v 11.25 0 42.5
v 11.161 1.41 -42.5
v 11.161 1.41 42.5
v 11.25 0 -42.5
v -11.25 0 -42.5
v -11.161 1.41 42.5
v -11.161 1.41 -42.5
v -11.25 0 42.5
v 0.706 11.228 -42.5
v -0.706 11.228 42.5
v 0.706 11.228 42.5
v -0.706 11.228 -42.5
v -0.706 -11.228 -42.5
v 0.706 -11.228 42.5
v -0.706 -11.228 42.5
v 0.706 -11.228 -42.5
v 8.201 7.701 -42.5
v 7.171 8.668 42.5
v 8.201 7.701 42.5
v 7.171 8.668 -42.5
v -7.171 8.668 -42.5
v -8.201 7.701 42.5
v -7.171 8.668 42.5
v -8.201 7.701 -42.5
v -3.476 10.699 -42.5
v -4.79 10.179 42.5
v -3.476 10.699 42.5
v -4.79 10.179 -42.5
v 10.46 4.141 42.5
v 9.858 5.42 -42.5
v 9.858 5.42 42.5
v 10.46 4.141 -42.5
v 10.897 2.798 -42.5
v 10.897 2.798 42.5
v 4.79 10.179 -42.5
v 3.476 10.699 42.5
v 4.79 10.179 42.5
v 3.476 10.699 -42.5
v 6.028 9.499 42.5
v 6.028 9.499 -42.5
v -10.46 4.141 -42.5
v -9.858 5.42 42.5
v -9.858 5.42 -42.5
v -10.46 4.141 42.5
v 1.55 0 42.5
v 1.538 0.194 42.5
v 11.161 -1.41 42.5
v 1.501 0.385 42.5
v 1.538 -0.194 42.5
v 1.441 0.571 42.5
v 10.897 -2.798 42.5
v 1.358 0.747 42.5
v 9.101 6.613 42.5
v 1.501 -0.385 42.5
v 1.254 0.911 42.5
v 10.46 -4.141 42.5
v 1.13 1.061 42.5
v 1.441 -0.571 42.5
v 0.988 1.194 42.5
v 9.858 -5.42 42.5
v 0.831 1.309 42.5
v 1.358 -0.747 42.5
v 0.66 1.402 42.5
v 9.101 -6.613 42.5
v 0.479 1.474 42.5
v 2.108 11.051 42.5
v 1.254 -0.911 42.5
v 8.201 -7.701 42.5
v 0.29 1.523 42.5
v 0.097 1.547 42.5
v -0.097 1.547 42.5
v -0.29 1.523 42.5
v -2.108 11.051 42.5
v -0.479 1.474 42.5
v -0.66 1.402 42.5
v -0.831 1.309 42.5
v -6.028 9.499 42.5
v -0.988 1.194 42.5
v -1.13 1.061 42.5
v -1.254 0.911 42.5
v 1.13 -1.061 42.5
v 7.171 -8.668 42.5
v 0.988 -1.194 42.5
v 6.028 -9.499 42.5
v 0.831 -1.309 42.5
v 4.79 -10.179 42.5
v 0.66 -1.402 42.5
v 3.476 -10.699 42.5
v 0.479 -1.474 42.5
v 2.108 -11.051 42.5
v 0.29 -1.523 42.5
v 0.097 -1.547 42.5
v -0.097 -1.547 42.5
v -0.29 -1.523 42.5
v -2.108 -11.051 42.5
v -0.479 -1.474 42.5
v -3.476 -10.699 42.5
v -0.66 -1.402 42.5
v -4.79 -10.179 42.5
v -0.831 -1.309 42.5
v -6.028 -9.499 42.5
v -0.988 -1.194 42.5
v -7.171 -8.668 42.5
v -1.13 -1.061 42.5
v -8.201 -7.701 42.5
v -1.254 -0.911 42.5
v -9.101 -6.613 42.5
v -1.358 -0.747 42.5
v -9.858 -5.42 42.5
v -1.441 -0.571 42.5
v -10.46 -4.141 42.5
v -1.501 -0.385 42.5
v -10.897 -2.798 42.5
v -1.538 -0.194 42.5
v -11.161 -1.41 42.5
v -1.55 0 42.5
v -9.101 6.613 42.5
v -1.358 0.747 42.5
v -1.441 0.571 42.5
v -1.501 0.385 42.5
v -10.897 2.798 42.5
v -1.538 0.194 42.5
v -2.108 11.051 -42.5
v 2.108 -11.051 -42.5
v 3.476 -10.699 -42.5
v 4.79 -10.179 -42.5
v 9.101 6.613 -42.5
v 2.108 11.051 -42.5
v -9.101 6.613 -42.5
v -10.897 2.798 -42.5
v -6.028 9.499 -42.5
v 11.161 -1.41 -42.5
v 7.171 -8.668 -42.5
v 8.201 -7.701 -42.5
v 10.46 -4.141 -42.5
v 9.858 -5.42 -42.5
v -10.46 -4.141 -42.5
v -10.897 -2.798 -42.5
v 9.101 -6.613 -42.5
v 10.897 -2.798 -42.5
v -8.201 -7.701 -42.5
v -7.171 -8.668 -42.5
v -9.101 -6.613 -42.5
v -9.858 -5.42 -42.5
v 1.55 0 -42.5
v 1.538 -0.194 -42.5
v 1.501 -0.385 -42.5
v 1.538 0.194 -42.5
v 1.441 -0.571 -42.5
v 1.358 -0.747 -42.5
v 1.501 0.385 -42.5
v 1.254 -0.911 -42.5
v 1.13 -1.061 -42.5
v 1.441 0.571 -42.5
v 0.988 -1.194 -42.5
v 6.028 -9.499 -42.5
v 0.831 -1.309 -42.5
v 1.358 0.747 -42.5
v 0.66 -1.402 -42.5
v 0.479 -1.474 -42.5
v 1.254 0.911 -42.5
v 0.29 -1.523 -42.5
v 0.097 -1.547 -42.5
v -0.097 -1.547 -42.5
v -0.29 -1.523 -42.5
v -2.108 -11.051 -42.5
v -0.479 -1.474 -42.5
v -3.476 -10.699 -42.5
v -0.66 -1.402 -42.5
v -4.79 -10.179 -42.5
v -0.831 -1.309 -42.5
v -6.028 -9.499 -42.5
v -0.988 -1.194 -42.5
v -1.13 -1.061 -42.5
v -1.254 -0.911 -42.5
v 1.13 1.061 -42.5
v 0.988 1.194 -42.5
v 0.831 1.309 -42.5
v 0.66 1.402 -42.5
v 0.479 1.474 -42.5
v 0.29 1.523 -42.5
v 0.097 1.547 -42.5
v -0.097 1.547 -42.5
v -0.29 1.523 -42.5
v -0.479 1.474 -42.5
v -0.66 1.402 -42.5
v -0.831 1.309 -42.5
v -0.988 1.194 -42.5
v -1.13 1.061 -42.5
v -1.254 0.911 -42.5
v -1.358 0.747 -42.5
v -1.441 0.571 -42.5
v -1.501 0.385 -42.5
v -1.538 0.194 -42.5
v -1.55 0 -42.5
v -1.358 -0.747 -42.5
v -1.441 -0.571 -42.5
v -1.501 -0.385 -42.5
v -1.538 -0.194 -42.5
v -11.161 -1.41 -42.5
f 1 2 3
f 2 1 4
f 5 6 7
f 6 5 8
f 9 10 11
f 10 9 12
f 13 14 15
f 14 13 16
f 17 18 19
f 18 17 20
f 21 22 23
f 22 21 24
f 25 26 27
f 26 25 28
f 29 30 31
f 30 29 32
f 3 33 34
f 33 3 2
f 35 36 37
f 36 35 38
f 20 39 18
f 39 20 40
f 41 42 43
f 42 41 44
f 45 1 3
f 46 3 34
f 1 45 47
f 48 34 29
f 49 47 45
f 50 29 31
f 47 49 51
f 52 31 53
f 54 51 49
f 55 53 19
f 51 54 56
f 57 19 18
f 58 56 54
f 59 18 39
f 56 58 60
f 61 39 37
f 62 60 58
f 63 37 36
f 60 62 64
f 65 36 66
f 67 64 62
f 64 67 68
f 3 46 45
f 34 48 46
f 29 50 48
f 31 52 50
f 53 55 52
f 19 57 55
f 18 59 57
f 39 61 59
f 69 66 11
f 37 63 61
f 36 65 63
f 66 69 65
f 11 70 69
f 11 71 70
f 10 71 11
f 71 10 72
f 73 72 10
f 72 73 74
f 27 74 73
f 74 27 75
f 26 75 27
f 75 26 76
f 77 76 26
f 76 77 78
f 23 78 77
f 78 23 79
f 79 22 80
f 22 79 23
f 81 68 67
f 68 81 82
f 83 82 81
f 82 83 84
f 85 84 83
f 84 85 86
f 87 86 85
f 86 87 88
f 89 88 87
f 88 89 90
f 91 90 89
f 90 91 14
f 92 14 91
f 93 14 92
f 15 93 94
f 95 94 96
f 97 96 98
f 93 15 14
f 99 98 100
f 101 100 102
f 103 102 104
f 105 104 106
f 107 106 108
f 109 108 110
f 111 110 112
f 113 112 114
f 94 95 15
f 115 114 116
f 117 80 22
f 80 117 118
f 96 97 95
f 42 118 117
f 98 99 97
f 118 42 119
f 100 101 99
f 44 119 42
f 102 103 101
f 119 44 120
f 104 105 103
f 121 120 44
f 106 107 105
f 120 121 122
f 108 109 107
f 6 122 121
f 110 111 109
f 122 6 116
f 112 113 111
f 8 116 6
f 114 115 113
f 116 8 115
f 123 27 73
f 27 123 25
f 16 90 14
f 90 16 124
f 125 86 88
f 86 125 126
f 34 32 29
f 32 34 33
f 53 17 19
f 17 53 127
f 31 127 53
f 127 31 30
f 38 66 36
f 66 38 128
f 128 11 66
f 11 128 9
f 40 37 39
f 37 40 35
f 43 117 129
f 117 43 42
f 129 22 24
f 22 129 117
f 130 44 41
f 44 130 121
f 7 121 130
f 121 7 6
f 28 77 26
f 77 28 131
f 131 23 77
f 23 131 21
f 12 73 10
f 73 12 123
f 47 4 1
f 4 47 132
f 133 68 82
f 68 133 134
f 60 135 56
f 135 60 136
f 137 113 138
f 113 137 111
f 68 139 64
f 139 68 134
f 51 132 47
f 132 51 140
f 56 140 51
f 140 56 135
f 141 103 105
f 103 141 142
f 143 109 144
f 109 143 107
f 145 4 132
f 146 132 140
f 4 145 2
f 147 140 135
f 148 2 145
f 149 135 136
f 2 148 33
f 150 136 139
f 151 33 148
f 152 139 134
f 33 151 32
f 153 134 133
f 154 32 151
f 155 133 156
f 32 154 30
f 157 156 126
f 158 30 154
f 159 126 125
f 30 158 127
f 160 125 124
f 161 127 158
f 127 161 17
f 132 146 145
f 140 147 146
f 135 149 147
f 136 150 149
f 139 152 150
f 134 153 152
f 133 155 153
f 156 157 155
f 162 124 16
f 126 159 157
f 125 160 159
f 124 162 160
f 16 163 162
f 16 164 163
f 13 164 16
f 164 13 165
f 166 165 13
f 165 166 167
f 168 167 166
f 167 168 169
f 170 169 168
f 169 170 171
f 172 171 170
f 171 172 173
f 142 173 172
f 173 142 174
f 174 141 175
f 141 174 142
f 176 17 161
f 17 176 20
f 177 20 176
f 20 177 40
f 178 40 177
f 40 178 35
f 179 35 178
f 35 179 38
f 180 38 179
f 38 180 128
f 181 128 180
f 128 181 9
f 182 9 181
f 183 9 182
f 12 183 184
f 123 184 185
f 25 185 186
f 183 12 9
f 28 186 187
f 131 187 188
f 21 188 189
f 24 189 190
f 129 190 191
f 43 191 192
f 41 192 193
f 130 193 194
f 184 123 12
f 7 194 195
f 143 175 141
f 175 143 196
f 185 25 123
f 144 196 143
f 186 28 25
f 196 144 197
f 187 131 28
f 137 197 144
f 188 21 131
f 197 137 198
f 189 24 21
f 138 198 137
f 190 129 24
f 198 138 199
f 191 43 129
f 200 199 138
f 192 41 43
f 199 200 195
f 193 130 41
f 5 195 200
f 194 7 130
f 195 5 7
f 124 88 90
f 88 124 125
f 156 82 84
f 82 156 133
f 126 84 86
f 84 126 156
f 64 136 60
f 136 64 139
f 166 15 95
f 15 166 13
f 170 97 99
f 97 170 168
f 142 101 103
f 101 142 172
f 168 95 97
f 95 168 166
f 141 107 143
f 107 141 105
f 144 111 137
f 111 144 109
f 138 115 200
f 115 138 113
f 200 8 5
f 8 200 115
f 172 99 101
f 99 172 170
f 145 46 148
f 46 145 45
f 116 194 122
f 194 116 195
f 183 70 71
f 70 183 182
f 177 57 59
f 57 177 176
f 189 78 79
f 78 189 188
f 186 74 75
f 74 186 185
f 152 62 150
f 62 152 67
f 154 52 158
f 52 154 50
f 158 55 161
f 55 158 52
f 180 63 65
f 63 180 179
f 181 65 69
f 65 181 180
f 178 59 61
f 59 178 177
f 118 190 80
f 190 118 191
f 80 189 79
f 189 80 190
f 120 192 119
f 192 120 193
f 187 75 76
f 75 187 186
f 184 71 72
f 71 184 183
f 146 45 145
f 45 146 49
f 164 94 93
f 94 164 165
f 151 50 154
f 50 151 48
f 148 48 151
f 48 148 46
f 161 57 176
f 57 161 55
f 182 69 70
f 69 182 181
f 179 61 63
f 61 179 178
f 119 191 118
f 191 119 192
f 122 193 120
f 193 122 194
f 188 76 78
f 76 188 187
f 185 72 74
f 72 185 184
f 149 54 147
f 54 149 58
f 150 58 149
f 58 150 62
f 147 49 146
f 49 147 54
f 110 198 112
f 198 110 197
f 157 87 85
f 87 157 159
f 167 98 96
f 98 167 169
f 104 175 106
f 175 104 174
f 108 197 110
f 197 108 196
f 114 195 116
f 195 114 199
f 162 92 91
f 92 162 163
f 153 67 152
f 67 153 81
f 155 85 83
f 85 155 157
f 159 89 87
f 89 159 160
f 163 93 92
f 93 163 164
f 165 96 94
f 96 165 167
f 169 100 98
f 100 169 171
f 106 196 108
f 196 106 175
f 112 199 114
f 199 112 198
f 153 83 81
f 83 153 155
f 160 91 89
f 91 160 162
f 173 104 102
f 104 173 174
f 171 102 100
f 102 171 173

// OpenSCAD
$fn = 50;


difference() {
	union() {
		translate(v = [0, 0, -42.5000000000]) {
			cylinder(h = 85, r = 11.2500000000);
		}
	}
	union() {
		translate(v = [0, 0, -100.0000000000]) {
			cylinder(h = 200, r = 1.5500000000);
		}
	}
}
